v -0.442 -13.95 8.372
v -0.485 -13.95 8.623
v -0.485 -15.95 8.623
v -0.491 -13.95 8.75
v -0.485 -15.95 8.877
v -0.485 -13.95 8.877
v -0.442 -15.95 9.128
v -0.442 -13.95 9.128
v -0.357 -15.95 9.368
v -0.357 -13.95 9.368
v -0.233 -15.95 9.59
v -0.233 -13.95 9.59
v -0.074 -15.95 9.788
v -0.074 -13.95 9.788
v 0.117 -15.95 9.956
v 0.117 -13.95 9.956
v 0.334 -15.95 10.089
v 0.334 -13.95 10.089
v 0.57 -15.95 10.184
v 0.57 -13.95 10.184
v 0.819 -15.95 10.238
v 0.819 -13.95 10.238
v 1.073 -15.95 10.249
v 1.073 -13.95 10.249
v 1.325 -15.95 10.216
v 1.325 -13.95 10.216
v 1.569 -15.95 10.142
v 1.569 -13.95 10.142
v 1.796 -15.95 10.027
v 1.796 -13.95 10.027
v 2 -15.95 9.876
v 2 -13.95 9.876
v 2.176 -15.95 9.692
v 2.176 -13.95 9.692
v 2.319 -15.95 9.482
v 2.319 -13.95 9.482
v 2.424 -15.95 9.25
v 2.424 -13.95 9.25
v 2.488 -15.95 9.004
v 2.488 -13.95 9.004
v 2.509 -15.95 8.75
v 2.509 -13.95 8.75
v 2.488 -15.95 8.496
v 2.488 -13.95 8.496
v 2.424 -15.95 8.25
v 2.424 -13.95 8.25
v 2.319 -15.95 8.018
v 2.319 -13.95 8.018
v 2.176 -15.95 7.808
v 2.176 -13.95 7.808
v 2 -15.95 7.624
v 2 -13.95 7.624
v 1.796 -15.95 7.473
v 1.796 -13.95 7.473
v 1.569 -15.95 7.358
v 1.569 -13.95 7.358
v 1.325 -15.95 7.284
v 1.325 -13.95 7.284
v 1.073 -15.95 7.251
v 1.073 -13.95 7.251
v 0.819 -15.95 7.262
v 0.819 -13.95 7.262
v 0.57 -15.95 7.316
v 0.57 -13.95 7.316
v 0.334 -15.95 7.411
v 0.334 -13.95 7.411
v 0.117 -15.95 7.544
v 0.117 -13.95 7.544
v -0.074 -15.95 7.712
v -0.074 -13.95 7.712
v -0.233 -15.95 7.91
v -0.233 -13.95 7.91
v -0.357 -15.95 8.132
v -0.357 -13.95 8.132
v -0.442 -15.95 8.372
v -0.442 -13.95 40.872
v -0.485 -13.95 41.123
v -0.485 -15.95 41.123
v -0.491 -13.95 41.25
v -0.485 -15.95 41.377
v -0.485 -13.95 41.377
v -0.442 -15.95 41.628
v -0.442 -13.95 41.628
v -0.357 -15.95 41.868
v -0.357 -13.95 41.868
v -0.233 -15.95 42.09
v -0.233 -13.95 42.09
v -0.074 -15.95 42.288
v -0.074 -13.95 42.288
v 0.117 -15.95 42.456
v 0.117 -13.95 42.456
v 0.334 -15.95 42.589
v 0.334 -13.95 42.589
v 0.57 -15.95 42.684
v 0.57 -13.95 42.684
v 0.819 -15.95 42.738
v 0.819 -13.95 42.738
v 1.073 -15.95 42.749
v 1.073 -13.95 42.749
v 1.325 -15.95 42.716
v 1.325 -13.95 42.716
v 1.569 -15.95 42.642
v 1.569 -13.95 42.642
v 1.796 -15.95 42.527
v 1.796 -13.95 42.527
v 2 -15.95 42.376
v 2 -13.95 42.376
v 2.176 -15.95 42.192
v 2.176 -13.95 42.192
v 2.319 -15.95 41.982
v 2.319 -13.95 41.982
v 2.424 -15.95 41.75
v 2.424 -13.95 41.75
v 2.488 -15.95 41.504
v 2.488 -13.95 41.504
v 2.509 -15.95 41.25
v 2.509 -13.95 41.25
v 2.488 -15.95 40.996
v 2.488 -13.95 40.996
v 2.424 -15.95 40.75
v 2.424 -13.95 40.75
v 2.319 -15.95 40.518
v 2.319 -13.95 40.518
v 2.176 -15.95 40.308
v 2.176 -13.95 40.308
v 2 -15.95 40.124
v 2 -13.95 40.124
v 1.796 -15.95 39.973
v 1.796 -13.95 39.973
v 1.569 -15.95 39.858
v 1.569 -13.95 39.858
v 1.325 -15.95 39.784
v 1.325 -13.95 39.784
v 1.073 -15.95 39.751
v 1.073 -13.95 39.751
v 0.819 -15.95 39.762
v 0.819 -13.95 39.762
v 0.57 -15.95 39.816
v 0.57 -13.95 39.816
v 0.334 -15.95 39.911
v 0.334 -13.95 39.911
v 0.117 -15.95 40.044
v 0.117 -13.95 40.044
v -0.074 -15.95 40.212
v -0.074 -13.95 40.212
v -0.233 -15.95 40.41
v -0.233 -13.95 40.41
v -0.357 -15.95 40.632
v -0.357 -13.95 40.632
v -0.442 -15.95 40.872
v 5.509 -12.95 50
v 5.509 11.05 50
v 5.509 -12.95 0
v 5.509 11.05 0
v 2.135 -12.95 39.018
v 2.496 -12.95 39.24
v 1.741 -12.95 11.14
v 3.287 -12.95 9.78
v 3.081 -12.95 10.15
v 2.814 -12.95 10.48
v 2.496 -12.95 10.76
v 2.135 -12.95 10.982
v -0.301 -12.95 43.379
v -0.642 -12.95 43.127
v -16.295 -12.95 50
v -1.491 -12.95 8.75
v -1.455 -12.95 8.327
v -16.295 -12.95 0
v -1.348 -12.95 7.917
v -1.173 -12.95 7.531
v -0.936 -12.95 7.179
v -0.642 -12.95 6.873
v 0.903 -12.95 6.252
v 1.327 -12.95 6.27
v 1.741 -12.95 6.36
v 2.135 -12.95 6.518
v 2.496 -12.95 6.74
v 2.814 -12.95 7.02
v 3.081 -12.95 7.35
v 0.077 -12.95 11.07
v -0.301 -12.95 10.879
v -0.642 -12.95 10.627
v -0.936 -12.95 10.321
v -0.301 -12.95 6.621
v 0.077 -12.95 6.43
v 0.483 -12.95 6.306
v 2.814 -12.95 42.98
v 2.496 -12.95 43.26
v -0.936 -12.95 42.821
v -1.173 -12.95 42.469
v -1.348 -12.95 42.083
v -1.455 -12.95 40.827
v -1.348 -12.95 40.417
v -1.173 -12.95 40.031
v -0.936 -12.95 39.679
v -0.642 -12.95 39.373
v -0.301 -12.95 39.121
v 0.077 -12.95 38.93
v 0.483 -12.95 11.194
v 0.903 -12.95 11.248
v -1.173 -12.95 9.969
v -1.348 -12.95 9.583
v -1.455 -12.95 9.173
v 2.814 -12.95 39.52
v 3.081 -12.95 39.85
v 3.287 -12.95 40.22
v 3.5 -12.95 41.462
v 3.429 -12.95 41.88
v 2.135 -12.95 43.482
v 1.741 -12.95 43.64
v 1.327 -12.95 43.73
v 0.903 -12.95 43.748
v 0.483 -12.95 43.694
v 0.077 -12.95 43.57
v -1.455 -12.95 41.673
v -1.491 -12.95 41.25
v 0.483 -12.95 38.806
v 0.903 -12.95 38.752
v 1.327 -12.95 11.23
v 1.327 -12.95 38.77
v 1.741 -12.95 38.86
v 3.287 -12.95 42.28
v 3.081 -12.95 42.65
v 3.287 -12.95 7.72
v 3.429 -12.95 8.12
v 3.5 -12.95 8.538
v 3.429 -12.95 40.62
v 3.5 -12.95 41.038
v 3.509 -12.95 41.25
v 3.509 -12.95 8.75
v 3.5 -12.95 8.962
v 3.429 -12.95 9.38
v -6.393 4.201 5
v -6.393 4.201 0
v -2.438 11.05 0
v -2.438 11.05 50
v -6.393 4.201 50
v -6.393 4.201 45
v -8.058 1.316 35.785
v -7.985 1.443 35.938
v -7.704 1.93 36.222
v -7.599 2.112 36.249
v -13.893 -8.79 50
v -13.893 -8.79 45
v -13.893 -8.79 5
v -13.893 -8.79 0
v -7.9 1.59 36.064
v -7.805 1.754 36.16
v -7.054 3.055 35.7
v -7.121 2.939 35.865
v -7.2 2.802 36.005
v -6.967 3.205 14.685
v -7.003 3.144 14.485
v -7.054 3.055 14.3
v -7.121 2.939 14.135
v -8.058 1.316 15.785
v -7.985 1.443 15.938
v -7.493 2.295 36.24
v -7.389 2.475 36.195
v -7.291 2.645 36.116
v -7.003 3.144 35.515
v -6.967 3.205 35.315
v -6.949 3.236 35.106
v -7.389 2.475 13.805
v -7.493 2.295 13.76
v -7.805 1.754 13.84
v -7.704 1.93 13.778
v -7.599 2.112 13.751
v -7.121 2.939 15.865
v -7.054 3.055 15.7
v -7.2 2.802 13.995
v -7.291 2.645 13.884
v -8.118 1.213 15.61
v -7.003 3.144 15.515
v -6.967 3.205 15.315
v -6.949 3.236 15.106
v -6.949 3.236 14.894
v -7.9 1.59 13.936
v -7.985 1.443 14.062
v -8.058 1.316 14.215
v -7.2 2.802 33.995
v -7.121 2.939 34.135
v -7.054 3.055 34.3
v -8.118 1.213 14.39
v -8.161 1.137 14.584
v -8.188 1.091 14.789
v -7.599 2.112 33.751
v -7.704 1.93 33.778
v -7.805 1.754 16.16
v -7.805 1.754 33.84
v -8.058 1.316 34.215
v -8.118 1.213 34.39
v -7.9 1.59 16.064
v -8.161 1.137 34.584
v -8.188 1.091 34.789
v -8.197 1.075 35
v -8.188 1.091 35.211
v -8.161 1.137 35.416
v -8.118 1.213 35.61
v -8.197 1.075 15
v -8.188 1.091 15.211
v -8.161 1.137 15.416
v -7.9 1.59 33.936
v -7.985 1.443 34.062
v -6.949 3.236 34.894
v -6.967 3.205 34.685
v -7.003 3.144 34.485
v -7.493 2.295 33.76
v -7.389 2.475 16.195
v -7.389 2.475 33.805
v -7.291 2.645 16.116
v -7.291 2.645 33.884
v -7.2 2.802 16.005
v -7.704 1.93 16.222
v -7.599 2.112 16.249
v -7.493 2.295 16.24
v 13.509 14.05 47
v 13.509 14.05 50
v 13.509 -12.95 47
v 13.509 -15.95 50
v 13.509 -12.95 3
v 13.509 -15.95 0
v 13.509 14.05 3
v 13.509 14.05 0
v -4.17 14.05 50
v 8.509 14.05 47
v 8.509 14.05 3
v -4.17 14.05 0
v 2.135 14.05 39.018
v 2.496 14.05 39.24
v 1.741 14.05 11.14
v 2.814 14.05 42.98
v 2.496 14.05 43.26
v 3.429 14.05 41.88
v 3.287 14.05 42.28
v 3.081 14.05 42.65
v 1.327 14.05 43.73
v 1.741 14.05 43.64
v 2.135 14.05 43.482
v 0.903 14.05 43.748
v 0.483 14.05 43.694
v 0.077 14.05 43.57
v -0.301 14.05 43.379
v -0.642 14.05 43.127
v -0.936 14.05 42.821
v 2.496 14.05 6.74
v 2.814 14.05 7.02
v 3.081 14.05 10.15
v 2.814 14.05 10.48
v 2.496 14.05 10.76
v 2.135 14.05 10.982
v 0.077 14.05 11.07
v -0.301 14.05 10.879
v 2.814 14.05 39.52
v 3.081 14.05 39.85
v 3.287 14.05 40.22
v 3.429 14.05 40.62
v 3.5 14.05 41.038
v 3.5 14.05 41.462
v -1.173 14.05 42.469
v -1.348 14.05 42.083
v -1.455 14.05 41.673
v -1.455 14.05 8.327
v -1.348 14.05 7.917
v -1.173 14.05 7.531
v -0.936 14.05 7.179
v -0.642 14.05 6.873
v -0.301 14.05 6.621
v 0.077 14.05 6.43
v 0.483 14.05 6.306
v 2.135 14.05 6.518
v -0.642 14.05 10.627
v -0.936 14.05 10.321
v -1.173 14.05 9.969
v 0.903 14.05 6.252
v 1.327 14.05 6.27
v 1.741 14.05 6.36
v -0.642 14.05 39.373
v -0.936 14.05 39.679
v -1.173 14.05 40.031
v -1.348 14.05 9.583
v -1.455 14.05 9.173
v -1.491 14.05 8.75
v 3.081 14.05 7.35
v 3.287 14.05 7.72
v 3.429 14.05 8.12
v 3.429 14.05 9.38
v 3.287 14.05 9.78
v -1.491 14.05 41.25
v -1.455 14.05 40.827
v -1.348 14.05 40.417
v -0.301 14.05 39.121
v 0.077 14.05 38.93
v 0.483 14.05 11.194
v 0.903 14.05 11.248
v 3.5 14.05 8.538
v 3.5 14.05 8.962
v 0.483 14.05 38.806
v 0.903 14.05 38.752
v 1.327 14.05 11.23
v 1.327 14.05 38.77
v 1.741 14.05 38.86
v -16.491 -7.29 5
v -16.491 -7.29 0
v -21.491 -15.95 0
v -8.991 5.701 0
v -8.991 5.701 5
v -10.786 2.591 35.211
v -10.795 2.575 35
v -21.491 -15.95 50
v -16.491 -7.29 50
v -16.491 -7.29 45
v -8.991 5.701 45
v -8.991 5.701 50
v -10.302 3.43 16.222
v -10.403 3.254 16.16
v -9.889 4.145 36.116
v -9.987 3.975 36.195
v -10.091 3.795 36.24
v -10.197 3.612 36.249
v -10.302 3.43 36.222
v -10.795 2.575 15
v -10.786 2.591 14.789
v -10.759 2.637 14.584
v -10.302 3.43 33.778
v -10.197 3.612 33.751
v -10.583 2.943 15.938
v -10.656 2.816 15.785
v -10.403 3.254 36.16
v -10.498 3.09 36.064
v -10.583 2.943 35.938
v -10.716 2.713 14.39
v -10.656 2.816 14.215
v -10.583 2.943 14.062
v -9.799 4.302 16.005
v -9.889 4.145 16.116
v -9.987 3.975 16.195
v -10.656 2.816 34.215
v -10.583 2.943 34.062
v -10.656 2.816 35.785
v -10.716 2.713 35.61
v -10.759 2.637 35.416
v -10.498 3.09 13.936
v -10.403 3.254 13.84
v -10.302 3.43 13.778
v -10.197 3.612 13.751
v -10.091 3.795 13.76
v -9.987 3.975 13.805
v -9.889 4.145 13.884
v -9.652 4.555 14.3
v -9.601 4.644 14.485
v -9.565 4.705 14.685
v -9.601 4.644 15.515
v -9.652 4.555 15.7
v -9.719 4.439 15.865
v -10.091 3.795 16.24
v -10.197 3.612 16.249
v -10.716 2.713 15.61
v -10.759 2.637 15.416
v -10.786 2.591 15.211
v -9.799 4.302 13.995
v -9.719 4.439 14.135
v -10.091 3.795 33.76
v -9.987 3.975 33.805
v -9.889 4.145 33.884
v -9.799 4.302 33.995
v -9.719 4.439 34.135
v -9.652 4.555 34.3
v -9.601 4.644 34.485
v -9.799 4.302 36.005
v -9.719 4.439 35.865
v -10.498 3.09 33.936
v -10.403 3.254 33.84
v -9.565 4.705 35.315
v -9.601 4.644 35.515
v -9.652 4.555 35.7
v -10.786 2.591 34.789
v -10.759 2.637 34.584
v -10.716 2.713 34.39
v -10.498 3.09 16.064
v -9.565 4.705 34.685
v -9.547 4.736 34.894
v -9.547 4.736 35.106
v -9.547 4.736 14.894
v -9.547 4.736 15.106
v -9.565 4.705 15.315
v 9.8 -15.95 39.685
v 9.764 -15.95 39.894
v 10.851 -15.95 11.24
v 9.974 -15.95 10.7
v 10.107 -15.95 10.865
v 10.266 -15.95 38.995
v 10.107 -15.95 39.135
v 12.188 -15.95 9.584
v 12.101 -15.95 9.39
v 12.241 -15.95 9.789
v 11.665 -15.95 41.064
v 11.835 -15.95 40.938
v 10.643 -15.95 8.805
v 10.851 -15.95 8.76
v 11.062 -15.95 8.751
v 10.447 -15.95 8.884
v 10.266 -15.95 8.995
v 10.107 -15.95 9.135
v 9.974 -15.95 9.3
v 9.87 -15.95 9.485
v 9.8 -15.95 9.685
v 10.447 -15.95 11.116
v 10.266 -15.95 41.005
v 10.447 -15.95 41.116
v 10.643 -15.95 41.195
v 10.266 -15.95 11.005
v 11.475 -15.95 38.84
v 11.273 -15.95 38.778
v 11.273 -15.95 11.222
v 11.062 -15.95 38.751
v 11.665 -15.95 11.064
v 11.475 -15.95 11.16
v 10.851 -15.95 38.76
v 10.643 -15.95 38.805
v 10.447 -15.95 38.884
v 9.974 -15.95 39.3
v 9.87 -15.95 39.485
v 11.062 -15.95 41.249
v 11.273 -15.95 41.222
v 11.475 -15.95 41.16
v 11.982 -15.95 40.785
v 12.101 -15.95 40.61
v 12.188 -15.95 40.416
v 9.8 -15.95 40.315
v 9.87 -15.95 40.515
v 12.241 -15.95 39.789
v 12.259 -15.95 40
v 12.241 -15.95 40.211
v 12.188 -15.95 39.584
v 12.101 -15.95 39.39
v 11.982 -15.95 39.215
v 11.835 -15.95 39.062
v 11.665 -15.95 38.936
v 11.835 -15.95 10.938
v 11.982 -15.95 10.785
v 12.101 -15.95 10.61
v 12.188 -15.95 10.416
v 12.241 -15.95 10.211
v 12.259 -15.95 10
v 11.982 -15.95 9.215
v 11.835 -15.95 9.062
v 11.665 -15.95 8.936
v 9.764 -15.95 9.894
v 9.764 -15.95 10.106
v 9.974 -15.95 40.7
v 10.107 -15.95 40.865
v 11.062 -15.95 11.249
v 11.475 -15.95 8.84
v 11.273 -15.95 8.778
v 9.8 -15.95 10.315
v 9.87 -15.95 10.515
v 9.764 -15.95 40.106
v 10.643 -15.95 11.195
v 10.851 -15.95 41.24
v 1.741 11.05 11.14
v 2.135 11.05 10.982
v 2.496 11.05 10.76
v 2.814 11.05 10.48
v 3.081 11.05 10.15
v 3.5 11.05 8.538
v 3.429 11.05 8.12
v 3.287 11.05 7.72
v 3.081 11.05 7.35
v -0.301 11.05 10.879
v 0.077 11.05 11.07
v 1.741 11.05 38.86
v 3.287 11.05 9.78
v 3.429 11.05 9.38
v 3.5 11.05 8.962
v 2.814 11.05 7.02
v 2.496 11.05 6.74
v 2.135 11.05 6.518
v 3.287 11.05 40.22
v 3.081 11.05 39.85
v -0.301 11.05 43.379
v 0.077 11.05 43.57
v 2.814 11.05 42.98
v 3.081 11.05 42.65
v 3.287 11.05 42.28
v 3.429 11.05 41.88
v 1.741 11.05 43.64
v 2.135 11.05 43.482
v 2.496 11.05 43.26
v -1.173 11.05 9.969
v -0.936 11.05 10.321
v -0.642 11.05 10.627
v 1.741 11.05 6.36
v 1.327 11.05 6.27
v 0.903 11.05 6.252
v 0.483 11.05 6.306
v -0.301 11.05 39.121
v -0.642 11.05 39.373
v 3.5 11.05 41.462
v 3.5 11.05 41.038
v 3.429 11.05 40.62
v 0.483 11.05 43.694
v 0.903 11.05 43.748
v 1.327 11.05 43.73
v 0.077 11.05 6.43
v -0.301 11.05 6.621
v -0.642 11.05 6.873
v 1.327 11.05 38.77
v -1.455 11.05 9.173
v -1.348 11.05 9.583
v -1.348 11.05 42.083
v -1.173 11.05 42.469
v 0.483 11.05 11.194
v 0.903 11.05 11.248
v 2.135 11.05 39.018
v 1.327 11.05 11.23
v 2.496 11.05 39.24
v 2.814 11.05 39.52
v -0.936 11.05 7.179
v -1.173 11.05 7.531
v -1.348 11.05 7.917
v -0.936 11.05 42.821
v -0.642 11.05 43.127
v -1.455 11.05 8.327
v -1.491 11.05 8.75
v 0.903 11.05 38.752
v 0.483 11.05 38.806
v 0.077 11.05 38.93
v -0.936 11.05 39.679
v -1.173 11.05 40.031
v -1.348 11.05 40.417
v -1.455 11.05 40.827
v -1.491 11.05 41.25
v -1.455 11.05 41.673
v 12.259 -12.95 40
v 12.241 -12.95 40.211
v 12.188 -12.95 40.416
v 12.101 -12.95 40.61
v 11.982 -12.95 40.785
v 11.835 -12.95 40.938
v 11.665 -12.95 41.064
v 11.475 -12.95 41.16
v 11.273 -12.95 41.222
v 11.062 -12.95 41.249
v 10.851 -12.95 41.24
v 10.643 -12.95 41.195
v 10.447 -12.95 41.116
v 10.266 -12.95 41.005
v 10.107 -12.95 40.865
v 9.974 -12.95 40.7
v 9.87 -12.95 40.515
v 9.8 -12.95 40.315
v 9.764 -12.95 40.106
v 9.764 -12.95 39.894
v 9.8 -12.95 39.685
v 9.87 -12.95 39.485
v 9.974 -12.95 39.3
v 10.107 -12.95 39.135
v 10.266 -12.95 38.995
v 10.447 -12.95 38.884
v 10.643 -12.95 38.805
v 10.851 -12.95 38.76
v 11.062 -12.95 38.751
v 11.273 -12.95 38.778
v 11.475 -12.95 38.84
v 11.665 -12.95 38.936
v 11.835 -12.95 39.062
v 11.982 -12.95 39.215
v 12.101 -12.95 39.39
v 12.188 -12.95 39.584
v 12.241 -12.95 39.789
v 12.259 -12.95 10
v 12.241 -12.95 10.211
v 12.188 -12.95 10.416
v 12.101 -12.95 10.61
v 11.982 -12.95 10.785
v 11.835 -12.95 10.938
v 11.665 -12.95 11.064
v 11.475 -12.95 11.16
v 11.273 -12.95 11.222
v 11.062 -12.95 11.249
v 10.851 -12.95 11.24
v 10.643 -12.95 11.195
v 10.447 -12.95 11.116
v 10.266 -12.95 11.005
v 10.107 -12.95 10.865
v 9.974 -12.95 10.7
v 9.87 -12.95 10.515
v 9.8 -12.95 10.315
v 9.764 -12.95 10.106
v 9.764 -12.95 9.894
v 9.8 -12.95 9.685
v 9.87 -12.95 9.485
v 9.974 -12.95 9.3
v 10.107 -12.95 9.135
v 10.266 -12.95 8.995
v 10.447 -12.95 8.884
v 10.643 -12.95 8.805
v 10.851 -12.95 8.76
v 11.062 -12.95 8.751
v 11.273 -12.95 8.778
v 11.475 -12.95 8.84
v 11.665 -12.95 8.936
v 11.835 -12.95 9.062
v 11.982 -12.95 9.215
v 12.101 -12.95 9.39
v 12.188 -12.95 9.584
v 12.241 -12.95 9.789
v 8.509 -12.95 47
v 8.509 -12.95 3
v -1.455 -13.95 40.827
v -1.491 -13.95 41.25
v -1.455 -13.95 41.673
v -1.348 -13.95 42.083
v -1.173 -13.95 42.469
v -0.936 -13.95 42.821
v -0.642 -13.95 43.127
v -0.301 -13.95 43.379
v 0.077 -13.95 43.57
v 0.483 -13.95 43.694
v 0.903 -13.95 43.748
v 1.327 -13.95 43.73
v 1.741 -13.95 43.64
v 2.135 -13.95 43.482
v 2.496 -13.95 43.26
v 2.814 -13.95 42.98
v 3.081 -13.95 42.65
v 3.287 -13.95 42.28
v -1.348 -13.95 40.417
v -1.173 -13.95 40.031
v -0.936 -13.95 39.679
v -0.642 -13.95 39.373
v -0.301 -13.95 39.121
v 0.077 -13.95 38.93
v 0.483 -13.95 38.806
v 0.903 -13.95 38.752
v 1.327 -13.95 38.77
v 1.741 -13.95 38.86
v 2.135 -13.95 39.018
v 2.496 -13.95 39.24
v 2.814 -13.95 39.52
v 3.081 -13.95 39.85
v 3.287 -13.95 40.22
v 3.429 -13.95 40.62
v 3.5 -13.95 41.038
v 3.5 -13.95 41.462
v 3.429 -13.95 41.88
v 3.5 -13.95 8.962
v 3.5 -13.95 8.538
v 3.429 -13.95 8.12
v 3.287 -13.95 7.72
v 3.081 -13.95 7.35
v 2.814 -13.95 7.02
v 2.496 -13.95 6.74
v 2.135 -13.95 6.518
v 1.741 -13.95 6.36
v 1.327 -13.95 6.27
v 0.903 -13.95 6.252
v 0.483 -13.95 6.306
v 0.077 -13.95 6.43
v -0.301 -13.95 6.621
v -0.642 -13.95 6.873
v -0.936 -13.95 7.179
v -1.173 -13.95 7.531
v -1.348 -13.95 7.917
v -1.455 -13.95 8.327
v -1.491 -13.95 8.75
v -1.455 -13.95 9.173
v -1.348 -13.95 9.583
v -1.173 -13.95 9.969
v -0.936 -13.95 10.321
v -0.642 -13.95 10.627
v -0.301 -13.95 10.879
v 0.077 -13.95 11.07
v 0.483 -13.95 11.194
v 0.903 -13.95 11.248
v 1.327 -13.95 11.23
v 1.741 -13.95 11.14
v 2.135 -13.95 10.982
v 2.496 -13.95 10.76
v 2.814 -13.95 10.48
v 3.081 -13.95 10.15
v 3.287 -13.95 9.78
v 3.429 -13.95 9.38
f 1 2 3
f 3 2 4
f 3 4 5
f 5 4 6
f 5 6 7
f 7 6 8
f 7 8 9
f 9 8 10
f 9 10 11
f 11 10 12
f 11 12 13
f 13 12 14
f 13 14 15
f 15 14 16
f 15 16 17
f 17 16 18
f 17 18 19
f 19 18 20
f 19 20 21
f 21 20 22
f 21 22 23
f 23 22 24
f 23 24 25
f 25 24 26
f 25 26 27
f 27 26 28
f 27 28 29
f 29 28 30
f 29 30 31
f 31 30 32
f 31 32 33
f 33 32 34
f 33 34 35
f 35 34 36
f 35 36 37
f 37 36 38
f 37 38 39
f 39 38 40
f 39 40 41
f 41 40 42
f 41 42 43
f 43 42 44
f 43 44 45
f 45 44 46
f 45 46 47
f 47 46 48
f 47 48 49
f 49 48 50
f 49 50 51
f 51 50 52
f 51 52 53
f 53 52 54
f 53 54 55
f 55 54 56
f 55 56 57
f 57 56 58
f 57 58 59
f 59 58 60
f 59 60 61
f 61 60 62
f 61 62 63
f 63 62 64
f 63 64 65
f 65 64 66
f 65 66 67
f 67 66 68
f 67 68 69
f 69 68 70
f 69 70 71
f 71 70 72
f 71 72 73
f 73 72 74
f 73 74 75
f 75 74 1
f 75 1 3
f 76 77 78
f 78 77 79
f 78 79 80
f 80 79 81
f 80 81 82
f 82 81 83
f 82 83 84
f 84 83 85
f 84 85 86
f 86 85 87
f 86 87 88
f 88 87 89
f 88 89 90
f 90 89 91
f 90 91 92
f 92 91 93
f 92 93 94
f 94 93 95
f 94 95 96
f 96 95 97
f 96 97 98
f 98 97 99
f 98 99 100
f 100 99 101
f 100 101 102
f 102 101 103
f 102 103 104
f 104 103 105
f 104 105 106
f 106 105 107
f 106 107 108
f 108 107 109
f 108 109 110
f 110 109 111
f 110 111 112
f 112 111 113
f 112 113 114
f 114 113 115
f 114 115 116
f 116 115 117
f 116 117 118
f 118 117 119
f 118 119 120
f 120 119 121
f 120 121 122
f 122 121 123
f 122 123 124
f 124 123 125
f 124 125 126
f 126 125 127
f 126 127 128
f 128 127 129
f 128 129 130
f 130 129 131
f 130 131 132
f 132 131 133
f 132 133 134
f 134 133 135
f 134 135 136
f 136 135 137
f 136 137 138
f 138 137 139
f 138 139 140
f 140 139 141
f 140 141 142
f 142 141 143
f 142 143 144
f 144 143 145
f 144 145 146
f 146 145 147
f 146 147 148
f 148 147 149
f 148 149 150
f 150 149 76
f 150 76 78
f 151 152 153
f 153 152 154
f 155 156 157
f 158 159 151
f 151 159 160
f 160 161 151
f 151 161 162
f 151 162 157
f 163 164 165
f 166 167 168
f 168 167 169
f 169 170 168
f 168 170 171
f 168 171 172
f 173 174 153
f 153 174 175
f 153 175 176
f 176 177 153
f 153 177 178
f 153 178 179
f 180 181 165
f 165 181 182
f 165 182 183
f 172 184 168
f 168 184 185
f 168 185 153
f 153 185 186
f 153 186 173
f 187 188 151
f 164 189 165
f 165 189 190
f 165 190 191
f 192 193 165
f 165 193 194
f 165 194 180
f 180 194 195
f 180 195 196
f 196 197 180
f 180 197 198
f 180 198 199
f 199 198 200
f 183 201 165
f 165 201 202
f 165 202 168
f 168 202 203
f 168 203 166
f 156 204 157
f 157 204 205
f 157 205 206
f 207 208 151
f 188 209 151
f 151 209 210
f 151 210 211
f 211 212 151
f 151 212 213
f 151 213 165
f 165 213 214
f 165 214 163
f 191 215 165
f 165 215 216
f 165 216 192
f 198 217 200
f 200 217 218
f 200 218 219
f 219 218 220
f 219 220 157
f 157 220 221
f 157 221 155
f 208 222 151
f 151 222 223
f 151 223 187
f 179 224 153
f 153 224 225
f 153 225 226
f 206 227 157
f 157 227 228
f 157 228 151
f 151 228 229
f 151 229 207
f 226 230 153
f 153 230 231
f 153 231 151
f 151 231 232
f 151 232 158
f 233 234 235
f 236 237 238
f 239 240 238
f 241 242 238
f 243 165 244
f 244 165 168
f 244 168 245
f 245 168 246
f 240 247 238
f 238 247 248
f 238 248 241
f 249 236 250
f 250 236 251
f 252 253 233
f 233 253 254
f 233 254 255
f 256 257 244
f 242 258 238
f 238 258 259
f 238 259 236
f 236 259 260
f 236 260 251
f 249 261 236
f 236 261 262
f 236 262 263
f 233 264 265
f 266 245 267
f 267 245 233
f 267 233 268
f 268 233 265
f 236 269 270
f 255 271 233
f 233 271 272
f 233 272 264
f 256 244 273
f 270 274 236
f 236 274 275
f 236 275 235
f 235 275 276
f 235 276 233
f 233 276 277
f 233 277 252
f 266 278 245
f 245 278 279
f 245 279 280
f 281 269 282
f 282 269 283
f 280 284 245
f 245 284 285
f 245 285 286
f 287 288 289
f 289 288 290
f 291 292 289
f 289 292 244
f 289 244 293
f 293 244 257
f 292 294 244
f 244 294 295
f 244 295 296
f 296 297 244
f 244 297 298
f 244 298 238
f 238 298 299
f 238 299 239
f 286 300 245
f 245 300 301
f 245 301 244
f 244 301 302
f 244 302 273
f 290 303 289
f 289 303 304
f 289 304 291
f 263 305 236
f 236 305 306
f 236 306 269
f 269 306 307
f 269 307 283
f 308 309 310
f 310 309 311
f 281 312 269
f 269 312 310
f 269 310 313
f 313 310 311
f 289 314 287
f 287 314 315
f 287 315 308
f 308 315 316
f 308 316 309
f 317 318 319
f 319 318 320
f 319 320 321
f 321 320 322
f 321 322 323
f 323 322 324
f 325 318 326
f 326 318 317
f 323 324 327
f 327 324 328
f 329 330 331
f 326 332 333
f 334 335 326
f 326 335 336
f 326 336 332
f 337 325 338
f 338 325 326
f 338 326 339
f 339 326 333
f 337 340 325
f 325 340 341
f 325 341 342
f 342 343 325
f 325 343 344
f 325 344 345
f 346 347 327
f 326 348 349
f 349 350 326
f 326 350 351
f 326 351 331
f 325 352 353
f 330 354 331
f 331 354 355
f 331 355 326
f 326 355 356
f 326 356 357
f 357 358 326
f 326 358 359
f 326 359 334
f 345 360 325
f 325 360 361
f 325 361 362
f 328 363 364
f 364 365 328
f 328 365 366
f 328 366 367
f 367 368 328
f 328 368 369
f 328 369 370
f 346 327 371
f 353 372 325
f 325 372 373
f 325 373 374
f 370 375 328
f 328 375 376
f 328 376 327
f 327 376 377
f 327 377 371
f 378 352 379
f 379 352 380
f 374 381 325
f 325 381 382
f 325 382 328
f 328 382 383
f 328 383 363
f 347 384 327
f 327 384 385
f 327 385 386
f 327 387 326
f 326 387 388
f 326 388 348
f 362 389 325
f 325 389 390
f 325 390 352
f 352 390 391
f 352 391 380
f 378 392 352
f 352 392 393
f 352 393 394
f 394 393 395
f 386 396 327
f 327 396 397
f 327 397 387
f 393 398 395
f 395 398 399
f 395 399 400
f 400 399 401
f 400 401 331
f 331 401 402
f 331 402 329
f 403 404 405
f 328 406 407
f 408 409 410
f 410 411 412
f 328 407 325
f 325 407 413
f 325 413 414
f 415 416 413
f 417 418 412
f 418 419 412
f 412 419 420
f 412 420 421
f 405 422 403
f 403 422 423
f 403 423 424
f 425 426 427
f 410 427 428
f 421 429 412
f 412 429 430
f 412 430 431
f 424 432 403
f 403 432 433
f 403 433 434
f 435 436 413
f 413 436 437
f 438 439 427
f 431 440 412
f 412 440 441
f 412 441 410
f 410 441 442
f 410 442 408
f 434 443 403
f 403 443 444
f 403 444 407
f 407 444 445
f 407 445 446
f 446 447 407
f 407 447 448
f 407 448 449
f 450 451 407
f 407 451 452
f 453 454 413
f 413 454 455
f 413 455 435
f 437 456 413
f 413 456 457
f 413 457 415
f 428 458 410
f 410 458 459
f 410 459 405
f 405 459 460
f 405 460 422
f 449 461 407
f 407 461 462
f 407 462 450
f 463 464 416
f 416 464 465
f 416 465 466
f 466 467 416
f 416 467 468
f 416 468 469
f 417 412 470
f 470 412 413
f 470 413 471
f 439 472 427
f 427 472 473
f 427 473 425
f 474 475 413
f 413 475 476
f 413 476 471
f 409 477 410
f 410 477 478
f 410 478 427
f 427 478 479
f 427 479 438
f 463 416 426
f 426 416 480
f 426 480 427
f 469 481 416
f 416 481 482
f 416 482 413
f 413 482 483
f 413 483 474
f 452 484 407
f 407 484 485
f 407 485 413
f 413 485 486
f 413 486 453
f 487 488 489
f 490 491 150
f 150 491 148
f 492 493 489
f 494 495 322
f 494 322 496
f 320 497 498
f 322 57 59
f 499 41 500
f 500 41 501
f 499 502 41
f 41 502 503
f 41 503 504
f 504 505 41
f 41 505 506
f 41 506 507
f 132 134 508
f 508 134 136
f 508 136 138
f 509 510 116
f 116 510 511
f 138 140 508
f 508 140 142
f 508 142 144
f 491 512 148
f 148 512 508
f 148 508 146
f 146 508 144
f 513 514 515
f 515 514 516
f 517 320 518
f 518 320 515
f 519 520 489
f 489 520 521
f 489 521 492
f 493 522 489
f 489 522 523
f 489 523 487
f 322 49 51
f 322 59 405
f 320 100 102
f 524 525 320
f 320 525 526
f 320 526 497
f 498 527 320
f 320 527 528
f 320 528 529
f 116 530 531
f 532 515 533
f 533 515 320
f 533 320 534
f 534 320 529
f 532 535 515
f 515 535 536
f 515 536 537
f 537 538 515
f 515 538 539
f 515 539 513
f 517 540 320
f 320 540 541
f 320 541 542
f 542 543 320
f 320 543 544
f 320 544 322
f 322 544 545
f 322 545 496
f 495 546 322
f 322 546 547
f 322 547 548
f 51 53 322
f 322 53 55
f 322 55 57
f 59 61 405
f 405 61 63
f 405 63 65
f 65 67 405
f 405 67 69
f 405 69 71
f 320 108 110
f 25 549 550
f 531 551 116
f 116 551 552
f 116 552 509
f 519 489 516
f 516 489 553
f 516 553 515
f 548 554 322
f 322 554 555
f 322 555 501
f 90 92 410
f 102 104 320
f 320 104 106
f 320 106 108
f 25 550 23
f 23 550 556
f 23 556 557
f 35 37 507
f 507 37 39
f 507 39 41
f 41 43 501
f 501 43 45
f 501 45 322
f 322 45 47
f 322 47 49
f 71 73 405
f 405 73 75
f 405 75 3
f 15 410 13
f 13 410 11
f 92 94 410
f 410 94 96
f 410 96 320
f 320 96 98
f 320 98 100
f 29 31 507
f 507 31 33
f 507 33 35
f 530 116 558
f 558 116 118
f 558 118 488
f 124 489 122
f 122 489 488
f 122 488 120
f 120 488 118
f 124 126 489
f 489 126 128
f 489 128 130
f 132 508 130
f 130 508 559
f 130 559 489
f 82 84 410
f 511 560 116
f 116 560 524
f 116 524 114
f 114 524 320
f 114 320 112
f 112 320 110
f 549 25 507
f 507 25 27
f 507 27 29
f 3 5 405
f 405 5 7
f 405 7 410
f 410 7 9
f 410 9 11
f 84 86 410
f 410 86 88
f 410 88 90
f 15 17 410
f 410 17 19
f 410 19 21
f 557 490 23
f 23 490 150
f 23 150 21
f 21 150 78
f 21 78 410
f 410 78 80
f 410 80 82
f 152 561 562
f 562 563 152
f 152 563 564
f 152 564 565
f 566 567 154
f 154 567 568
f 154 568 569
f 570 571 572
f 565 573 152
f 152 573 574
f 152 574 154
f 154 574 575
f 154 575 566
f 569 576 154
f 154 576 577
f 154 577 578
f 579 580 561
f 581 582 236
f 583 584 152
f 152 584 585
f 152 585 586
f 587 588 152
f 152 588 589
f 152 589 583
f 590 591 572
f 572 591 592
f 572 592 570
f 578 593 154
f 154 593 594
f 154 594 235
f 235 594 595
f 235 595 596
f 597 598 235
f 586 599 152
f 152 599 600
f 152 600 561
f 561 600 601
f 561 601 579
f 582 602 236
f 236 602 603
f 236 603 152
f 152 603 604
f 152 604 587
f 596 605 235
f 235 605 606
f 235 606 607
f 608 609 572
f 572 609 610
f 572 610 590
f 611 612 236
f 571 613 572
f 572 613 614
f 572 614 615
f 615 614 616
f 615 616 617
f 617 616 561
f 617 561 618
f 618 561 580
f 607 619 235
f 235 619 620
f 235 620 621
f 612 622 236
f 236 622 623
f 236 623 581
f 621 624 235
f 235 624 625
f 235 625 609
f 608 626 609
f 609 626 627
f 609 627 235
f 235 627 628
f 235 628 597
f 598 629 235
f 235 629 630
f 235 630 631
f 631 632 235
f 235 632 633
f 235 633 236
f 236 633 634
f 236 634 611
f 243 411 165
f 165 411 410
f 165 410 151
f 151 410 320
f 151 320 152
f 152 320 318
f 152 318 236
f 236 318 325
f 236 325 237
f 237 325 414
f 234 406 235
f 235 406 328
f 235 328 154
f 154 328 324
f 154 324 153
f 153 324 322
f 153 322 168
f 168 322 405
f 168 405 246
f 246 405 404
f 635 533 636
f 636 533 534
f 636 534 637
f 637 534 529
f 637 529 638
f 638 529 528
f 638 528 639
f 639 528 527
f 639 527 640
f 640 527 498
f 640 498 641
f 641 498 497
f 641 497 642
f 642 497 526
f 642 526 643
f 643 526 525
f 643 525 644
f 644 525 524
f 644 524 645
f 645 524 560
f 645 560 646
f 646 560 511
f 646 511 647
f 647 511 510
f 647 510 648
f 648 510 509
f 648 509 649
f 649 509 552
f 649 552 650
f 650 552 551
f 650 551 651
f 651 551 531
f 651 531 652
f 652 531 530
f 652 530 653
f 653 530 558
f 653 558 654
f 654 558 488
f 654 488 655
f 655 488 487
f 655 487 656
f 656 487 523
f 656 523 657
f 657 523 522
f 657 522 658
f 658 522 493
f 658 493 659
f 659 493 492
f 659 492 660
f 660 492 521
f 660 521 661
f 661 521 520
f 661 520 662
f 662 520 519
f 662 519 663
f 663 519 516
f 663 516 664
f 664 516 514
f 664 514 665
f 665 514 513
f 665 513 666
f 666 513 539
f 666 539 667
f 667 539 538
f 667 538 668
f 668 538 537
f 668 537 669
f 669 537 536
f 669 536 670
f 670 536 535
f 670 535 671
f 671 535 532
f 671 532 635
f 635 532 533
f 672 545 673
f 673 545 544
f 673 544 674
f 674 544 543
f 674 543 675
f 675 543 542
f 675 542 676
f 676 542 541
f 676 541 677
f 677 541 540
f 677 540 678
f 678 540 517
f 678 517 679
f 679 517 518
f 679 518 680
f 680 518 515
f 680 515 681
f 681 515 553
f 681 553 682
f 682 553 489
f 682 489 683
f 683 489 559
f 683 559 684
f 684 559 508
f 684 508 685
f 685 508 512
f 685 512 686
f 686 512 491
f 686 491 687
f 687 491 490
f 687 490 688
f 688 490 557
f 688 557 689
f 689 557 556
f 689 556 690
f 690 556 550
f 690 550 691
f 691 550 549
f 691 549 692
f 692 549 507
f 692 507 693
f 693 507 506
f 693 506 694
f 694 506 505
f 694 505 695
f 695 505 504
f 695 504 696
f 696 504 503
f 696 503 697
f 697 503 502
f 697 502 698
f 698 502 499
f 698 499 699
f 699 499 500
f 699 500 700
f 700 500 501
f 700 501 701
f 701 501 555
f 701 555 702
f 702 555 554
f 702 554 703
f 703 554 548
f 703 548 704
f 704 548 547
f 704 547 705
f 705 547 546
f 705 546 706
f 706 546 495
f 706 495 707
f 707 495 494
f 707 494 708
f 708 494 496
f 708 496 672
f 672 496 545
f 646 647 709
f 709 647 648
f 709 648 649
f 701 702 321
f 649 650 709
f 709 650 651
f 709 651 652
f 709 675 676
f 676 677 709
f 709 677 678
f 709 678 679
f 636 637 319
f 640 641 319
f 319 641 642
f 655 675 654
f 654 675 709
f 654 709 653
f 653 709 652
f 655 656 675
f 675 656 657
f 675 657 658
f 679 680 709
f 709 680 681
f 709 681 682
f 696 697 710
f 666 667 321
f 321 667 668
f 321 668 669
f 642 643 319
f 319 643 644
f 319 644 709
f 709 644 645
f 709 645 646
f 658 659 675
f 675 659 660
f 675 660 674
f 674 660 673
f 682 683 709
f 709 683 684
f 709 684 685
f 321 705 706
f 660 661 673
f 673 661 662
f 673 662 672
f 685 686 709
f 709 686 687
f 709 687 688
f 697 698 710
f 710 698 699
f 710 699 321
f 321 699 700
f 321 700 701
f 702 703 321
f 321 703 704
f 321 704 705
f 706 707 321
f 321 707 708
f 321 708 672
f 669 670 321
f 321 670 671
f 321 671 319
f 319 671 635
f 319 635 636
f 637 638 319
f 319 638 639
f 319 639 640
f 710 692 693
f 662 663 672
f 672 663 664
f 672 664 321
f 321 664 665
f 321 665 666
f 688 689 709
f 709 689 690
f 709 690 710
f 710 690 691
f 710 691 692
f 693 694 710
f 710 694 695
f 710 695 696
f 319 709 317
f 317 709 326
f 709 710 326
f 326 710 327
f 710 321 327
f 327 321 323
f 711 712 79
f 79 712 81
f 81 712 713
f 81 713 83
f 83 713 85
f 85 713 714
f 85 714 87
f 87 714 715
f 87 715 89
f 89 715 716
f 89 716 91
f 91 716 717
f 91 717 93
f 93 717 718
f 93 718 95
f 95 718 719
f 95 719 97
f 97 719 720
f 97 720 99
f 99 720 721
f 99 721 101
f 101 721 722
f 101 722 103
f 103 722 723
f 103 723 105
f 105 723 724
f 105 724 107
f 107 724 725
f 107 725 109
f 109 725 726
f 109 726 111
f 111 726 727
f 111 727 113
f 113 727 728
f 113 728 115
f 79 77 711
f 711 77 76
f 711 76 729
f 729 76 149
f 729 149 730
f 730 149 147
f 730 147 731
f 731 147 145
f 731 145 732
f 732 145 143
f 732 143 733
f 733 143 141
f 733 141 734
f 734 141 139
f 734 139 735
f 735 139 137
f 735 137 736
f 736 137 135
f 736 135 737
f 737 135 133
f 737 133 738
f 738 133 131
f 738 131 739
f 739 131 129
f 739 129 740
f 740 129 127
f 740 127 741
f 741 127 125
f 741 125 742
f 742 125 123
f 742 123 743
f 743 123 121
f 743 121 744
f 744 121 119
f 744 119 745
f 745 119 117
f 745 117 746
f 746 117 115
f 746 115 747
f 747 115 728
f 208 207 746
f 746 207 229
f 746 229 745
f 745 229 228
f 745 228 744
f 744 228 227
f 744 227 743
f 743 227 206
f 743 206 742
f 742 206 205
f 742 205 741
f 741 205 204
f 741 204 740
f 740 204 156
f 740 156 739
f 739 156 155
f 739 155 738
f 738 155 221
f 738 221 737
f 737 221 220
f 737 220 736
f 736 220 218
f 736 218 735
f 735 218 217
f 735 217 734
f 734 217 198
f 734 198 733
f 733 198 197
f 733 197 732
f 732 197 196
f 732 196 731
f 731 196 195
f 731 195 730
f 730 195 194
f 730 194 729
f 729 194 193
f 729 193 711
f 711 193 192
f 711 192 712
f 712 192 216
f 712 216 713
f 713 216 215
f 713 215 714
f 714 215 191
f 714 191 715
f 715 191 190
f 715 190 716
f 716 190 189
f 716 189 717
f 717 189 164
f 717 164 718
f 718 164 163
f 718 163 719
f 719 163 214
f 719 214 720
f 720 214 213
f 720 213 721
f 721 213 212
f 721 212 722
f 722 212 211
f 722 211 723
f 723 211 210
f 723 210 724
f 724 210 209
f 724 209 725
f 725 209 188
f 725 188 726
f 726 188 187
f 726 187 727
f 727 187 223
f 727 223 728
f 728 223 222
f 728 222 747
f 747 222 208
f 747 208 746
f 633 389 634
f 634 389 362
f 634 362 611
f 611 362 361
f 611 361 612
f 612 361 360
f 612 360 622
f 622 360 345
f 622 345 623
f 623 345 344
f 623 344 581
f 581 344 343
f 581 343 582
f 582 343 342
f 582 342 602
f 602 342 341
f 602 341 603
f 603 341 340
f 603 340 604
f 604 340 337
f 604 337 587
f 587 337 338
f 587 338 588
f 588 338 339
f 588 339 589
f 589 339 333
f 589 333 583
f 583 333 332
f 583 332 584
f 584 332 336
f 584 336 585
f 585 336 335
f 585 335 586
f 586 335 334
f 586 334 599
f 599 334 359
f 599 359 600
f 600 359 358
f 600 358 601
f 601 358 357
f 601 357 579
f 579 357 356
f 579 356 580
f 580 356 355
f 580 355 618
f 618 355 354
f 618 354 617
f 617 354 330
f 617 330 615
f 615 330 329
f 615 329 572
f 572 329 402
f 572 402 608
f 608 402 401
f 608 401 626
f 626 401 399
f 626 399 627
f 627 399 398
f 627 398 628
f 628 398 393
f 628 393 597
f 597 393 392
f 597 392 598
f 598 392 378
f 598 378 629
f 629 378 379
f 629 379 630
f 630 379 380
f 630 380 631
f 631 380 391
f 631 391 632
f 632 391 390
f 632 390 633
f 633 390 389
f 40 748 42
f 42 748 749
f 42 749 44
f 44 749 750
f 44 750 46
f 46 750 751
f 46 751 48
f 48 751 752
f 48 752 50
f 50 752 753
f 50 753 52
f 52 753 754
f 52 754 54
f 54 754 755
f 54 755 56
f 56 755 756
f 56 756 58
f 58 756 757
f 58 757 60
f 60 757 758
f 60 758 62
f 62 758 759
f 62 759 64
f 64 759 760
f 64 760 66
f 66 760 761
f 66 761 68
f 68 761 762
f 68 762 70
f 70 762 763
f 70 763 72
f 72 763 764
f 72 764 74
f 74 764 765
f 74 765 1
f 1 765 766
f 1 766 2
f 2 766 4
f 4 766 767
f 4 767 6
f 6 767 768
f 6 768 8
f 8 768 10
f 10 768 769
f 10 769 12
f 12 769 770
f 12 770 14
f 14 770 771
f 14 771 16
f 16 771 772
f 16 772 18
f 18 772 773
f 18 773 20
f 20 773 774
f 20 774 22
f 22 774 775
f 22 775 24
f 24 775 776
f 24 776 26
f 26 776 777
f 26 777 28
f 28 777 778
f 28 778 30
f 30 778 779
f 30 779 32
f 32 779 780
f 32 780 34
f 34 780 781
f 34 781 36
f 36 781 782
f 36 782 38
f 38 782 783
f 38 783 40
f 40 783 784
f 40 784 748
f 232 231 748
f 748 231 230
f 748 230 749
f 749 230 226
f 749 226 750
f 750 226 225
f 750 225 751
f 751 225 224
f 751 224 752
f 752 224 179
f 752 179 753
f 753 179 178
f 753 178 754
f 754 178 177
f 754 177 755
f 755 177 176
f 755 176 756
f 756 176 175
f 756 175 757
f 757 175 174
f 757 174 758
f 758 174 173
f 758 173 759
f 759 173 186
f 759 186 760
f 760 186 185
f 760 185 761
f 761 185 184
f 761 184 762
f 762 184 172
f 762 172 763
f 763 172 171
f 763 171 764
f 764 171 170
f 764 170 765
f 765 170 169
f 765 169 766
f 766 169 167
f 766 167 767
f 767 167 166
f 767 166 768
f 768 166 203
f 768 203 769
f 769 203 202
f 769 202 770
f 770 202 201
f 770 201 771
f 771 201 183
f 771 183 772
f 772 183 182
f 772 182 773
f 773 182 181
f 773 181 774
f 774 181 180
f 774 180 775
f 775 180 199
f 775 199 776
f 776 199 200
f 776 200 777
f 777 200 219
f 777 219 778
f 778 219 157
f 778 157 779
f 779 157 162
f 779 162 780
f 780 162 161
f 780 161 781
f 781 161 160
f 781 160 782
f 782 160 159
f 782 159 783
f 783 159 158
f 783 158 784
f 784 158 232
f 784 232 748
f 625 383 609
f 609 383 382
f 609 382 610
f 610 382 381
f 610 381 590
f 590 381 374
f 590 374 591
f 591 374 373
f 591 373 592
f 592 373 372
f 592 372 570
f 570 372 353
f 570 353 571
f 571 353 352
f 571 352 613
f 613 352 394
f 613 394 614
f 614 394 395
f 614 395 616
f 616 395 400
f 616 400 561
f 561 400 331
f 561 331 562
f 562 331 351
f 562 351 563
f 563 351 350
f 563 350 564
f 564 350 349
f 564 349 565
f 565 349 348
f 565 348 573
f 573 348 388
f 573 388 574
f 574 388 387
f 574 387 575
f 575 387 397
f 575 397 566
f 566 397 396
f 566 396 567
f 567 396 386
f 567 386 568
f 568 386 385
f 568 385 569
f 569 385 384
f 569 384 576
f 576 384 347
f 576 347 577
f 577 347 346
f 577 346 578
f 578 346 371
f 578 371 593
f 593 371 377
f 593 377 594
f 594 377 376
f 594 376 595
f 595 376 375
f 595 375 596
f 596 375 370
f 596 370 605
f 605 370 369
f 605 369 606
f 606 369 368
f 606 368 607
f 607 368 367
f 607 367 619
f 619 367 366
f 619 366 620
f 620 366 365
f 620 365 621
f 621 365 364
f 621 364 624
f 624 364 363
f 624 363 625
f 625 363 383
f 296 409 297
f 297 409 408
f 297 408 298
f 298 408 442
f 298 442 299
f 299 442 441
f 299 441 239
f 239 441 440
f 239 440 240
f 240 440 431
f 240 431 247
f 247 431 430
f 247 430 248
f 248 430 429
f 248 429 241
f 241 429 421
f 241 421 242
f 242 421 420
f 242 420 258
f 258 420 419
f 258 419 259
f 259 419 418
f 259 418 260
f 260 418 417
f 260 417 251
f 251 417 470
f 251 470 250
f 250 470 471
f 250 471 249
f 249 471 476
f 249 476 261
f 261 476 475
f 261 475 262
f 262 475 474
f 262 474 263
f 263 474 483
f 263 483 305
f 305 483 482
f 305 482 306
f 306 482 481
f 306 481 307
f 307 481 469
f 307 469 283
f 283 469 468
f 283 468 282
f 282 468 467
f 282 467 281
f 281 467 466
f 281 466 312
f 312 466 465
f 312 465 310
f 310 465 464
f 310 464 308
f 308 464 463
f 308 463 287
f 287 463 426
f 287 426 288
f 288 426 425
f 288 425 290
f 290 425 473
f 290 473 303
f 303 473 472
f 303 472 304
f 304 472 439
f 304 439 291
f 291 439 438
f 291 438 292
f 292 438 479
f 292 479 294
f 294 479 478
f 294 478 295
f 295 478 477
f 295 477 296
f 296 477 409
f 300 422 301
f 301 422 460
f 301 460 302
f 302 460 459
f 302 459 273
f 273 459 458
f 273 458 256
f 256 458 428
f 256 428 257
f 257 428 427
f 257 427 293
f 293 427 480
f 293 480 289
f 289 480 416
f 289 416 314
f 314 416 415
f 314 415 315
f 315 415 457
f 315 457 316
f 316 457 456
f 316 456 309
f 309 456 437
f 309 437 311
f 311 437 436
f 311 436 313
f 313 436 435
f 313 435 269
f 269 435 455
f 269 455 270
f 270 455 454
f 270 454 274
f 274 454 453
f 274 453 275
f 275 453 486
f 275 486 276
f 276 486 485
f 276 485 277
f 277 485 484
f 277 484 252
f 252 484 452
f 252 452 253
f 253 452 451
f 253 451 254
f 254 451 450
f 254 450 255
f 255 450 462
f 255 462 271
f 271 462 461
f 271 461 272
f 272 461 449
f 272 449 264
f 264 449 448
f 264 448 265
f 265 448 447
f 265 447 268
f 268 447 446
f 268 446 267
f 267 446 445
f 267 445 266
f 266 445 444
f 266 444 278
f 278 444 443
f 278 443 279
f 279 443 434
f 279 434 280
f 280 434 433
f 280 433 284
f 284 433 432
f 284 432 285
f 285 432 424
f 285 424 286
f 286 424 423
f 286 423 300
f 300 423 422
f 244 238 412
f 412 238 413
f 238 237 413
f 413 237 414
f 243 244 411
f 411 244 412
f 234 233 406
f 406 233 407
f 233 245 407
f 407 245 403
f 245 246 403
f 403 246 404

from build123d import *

# Parameters (mm, degrees)
AUFSATZ_LINEAR_AUSTRAGEN1_DEPTH = 50
SKIZZE3_R                       = 1.25
SKIZZE3_R_2                     = 1.5
SCHNITT_LINEAR_AUSTRAGEN1_DEPTH = 3
SKIZZE4_W                       = 5
SKIZZE4_H                       = 44
SCHNITT_LINEAR_AUSTRAGEN2_DEPTH = 27
SKIZZE5_R                       = 2.5
SCHNITT_LINEAR_AUSTRAGEN3_DEPTH = 28
SKIZZE6_R                       = 1.25
SCHNITT_LINEAR_AUSTRAGEN4_DEPTH = 3
SKIZZE7_W                       = 5
SKIZZE7_H                       = 15
SCHNITT_LINEAR_AUSTRAGEN5_DEPTH = 3


with BuildPart() as part:
    # Skizze2 → Aufsatz-Linear austragen1 (new body)
    with BuildSketch(Plane.XY):
        Polygon((-4.170146195, 14.050114253), (-21.49065427, -15.949885747), (13.50934573, -15.949885747), (13.50934573, 14.050114253), align=None)
        Polygon((5.50934573, -12.949885747), (-16.294501848, -12.949885747), (-2.438095387, 11.050114253), (5.50934573, 11.050114253), align=None, mode=Mode.SUBTRACT)
    extrude(amount=AUFSATZ_LINEAR_AUSTRAGEN1_DEPTH)

    # Skizze3 → Schnitt-Linear austragen1 (cut)
    with BuildSketch(Plane.XZ.offset(15.949885747)):
        with Locations((11.00934573, 40)):
            Circle(SKIZZE3_R)
        with Locations((11.00934573, 10)):
            Circle(SKIZZE3_R)
        with Locations((1.00934573, 41.25)):
            Circle(SKIZZE3_R_2)
        with Locations((1.00934573, 8.75)):
            Circle(SKIZZE3_R_2)
    extrude(amount=-SCHNITT_LINEAR_AUSTRAGEN1_DEPTH, mode=Mode.SUBTRACT)

    # Skizze4 → Schnitt-Linear austragen2 (cut)
    with BuildSketch(Plane(origin=(0, 14.050114253, 0), x_dir=(1, 0, 0), z_dir=(0, 1, 0))):
        with Locations((11.00934573, -25)):
            Rectangle(SKIZZE4_W, SKIZZE4_H)
    extrude(amount=-SCHNITT_LINEAR_AUSTRAGEN2_DEPTH, mode=Mode.SUBTRACT)

    # Skizze5 → Schnitt-Linear austragen3 (cut)
    with BuildSketch(Plane(origin=(0, 14.050114253, 0), x_dir=(1, 0, 0), z_dir=(0, 1, 0))):
        with Locations((1.00934573, -41.25)):
            Circle(SKIZZE5_R)
        with Locations((1.00934573, -8.75)):
            Circle(SKIZZE5_R)
    extrude(amount=-SCHNITT_LINEAR_AUSTRAGEN3_DEPTH, mode=Mode.SUBTRACT)

    # Skizze6 → Schnitt-Linear austragen4 (cut)
    with BuildSketch(Plane(origin=(-9.21148758, 5.318254834, 0), x_dir=(0, 0, 1), z_dir=(-0.866025404, 0.5, 0))):
        with Locations((35, -1.917317229)):
            Circle(SKIZZE6_R)
        with Locations((15, -1.917317229)):
            Circle(SKIZZE6_R)
    extrude(amount=-SCHNITT_LINEAR_AUSTRAGEN4_DEPTH, mode=Mode.SUBTRACT)

    # Skizze7 → Schnitt-Linear austragen5 (cut)
    with BuildSketch(Plane(origin=(-9.21148758, 5.318254834, 0), x_dir=(0, 0, 1), z_dir=(-0.866025404, 0.5, 0))):
        with Locations((47.5, -7.05833338)):
            Rectangle(SKIZZE7_W, SKIZZE7_H)
        with Locations((2.5, -7.05833338)):
            Rectangle(SKIZZE7_W, SKIZZE7_H)
    extrude(amount=-SCHNITT_LINEAR_AUSTRAGEN5_DEPTH, mode=Mode.SUBTRACT)


solid = part.part
